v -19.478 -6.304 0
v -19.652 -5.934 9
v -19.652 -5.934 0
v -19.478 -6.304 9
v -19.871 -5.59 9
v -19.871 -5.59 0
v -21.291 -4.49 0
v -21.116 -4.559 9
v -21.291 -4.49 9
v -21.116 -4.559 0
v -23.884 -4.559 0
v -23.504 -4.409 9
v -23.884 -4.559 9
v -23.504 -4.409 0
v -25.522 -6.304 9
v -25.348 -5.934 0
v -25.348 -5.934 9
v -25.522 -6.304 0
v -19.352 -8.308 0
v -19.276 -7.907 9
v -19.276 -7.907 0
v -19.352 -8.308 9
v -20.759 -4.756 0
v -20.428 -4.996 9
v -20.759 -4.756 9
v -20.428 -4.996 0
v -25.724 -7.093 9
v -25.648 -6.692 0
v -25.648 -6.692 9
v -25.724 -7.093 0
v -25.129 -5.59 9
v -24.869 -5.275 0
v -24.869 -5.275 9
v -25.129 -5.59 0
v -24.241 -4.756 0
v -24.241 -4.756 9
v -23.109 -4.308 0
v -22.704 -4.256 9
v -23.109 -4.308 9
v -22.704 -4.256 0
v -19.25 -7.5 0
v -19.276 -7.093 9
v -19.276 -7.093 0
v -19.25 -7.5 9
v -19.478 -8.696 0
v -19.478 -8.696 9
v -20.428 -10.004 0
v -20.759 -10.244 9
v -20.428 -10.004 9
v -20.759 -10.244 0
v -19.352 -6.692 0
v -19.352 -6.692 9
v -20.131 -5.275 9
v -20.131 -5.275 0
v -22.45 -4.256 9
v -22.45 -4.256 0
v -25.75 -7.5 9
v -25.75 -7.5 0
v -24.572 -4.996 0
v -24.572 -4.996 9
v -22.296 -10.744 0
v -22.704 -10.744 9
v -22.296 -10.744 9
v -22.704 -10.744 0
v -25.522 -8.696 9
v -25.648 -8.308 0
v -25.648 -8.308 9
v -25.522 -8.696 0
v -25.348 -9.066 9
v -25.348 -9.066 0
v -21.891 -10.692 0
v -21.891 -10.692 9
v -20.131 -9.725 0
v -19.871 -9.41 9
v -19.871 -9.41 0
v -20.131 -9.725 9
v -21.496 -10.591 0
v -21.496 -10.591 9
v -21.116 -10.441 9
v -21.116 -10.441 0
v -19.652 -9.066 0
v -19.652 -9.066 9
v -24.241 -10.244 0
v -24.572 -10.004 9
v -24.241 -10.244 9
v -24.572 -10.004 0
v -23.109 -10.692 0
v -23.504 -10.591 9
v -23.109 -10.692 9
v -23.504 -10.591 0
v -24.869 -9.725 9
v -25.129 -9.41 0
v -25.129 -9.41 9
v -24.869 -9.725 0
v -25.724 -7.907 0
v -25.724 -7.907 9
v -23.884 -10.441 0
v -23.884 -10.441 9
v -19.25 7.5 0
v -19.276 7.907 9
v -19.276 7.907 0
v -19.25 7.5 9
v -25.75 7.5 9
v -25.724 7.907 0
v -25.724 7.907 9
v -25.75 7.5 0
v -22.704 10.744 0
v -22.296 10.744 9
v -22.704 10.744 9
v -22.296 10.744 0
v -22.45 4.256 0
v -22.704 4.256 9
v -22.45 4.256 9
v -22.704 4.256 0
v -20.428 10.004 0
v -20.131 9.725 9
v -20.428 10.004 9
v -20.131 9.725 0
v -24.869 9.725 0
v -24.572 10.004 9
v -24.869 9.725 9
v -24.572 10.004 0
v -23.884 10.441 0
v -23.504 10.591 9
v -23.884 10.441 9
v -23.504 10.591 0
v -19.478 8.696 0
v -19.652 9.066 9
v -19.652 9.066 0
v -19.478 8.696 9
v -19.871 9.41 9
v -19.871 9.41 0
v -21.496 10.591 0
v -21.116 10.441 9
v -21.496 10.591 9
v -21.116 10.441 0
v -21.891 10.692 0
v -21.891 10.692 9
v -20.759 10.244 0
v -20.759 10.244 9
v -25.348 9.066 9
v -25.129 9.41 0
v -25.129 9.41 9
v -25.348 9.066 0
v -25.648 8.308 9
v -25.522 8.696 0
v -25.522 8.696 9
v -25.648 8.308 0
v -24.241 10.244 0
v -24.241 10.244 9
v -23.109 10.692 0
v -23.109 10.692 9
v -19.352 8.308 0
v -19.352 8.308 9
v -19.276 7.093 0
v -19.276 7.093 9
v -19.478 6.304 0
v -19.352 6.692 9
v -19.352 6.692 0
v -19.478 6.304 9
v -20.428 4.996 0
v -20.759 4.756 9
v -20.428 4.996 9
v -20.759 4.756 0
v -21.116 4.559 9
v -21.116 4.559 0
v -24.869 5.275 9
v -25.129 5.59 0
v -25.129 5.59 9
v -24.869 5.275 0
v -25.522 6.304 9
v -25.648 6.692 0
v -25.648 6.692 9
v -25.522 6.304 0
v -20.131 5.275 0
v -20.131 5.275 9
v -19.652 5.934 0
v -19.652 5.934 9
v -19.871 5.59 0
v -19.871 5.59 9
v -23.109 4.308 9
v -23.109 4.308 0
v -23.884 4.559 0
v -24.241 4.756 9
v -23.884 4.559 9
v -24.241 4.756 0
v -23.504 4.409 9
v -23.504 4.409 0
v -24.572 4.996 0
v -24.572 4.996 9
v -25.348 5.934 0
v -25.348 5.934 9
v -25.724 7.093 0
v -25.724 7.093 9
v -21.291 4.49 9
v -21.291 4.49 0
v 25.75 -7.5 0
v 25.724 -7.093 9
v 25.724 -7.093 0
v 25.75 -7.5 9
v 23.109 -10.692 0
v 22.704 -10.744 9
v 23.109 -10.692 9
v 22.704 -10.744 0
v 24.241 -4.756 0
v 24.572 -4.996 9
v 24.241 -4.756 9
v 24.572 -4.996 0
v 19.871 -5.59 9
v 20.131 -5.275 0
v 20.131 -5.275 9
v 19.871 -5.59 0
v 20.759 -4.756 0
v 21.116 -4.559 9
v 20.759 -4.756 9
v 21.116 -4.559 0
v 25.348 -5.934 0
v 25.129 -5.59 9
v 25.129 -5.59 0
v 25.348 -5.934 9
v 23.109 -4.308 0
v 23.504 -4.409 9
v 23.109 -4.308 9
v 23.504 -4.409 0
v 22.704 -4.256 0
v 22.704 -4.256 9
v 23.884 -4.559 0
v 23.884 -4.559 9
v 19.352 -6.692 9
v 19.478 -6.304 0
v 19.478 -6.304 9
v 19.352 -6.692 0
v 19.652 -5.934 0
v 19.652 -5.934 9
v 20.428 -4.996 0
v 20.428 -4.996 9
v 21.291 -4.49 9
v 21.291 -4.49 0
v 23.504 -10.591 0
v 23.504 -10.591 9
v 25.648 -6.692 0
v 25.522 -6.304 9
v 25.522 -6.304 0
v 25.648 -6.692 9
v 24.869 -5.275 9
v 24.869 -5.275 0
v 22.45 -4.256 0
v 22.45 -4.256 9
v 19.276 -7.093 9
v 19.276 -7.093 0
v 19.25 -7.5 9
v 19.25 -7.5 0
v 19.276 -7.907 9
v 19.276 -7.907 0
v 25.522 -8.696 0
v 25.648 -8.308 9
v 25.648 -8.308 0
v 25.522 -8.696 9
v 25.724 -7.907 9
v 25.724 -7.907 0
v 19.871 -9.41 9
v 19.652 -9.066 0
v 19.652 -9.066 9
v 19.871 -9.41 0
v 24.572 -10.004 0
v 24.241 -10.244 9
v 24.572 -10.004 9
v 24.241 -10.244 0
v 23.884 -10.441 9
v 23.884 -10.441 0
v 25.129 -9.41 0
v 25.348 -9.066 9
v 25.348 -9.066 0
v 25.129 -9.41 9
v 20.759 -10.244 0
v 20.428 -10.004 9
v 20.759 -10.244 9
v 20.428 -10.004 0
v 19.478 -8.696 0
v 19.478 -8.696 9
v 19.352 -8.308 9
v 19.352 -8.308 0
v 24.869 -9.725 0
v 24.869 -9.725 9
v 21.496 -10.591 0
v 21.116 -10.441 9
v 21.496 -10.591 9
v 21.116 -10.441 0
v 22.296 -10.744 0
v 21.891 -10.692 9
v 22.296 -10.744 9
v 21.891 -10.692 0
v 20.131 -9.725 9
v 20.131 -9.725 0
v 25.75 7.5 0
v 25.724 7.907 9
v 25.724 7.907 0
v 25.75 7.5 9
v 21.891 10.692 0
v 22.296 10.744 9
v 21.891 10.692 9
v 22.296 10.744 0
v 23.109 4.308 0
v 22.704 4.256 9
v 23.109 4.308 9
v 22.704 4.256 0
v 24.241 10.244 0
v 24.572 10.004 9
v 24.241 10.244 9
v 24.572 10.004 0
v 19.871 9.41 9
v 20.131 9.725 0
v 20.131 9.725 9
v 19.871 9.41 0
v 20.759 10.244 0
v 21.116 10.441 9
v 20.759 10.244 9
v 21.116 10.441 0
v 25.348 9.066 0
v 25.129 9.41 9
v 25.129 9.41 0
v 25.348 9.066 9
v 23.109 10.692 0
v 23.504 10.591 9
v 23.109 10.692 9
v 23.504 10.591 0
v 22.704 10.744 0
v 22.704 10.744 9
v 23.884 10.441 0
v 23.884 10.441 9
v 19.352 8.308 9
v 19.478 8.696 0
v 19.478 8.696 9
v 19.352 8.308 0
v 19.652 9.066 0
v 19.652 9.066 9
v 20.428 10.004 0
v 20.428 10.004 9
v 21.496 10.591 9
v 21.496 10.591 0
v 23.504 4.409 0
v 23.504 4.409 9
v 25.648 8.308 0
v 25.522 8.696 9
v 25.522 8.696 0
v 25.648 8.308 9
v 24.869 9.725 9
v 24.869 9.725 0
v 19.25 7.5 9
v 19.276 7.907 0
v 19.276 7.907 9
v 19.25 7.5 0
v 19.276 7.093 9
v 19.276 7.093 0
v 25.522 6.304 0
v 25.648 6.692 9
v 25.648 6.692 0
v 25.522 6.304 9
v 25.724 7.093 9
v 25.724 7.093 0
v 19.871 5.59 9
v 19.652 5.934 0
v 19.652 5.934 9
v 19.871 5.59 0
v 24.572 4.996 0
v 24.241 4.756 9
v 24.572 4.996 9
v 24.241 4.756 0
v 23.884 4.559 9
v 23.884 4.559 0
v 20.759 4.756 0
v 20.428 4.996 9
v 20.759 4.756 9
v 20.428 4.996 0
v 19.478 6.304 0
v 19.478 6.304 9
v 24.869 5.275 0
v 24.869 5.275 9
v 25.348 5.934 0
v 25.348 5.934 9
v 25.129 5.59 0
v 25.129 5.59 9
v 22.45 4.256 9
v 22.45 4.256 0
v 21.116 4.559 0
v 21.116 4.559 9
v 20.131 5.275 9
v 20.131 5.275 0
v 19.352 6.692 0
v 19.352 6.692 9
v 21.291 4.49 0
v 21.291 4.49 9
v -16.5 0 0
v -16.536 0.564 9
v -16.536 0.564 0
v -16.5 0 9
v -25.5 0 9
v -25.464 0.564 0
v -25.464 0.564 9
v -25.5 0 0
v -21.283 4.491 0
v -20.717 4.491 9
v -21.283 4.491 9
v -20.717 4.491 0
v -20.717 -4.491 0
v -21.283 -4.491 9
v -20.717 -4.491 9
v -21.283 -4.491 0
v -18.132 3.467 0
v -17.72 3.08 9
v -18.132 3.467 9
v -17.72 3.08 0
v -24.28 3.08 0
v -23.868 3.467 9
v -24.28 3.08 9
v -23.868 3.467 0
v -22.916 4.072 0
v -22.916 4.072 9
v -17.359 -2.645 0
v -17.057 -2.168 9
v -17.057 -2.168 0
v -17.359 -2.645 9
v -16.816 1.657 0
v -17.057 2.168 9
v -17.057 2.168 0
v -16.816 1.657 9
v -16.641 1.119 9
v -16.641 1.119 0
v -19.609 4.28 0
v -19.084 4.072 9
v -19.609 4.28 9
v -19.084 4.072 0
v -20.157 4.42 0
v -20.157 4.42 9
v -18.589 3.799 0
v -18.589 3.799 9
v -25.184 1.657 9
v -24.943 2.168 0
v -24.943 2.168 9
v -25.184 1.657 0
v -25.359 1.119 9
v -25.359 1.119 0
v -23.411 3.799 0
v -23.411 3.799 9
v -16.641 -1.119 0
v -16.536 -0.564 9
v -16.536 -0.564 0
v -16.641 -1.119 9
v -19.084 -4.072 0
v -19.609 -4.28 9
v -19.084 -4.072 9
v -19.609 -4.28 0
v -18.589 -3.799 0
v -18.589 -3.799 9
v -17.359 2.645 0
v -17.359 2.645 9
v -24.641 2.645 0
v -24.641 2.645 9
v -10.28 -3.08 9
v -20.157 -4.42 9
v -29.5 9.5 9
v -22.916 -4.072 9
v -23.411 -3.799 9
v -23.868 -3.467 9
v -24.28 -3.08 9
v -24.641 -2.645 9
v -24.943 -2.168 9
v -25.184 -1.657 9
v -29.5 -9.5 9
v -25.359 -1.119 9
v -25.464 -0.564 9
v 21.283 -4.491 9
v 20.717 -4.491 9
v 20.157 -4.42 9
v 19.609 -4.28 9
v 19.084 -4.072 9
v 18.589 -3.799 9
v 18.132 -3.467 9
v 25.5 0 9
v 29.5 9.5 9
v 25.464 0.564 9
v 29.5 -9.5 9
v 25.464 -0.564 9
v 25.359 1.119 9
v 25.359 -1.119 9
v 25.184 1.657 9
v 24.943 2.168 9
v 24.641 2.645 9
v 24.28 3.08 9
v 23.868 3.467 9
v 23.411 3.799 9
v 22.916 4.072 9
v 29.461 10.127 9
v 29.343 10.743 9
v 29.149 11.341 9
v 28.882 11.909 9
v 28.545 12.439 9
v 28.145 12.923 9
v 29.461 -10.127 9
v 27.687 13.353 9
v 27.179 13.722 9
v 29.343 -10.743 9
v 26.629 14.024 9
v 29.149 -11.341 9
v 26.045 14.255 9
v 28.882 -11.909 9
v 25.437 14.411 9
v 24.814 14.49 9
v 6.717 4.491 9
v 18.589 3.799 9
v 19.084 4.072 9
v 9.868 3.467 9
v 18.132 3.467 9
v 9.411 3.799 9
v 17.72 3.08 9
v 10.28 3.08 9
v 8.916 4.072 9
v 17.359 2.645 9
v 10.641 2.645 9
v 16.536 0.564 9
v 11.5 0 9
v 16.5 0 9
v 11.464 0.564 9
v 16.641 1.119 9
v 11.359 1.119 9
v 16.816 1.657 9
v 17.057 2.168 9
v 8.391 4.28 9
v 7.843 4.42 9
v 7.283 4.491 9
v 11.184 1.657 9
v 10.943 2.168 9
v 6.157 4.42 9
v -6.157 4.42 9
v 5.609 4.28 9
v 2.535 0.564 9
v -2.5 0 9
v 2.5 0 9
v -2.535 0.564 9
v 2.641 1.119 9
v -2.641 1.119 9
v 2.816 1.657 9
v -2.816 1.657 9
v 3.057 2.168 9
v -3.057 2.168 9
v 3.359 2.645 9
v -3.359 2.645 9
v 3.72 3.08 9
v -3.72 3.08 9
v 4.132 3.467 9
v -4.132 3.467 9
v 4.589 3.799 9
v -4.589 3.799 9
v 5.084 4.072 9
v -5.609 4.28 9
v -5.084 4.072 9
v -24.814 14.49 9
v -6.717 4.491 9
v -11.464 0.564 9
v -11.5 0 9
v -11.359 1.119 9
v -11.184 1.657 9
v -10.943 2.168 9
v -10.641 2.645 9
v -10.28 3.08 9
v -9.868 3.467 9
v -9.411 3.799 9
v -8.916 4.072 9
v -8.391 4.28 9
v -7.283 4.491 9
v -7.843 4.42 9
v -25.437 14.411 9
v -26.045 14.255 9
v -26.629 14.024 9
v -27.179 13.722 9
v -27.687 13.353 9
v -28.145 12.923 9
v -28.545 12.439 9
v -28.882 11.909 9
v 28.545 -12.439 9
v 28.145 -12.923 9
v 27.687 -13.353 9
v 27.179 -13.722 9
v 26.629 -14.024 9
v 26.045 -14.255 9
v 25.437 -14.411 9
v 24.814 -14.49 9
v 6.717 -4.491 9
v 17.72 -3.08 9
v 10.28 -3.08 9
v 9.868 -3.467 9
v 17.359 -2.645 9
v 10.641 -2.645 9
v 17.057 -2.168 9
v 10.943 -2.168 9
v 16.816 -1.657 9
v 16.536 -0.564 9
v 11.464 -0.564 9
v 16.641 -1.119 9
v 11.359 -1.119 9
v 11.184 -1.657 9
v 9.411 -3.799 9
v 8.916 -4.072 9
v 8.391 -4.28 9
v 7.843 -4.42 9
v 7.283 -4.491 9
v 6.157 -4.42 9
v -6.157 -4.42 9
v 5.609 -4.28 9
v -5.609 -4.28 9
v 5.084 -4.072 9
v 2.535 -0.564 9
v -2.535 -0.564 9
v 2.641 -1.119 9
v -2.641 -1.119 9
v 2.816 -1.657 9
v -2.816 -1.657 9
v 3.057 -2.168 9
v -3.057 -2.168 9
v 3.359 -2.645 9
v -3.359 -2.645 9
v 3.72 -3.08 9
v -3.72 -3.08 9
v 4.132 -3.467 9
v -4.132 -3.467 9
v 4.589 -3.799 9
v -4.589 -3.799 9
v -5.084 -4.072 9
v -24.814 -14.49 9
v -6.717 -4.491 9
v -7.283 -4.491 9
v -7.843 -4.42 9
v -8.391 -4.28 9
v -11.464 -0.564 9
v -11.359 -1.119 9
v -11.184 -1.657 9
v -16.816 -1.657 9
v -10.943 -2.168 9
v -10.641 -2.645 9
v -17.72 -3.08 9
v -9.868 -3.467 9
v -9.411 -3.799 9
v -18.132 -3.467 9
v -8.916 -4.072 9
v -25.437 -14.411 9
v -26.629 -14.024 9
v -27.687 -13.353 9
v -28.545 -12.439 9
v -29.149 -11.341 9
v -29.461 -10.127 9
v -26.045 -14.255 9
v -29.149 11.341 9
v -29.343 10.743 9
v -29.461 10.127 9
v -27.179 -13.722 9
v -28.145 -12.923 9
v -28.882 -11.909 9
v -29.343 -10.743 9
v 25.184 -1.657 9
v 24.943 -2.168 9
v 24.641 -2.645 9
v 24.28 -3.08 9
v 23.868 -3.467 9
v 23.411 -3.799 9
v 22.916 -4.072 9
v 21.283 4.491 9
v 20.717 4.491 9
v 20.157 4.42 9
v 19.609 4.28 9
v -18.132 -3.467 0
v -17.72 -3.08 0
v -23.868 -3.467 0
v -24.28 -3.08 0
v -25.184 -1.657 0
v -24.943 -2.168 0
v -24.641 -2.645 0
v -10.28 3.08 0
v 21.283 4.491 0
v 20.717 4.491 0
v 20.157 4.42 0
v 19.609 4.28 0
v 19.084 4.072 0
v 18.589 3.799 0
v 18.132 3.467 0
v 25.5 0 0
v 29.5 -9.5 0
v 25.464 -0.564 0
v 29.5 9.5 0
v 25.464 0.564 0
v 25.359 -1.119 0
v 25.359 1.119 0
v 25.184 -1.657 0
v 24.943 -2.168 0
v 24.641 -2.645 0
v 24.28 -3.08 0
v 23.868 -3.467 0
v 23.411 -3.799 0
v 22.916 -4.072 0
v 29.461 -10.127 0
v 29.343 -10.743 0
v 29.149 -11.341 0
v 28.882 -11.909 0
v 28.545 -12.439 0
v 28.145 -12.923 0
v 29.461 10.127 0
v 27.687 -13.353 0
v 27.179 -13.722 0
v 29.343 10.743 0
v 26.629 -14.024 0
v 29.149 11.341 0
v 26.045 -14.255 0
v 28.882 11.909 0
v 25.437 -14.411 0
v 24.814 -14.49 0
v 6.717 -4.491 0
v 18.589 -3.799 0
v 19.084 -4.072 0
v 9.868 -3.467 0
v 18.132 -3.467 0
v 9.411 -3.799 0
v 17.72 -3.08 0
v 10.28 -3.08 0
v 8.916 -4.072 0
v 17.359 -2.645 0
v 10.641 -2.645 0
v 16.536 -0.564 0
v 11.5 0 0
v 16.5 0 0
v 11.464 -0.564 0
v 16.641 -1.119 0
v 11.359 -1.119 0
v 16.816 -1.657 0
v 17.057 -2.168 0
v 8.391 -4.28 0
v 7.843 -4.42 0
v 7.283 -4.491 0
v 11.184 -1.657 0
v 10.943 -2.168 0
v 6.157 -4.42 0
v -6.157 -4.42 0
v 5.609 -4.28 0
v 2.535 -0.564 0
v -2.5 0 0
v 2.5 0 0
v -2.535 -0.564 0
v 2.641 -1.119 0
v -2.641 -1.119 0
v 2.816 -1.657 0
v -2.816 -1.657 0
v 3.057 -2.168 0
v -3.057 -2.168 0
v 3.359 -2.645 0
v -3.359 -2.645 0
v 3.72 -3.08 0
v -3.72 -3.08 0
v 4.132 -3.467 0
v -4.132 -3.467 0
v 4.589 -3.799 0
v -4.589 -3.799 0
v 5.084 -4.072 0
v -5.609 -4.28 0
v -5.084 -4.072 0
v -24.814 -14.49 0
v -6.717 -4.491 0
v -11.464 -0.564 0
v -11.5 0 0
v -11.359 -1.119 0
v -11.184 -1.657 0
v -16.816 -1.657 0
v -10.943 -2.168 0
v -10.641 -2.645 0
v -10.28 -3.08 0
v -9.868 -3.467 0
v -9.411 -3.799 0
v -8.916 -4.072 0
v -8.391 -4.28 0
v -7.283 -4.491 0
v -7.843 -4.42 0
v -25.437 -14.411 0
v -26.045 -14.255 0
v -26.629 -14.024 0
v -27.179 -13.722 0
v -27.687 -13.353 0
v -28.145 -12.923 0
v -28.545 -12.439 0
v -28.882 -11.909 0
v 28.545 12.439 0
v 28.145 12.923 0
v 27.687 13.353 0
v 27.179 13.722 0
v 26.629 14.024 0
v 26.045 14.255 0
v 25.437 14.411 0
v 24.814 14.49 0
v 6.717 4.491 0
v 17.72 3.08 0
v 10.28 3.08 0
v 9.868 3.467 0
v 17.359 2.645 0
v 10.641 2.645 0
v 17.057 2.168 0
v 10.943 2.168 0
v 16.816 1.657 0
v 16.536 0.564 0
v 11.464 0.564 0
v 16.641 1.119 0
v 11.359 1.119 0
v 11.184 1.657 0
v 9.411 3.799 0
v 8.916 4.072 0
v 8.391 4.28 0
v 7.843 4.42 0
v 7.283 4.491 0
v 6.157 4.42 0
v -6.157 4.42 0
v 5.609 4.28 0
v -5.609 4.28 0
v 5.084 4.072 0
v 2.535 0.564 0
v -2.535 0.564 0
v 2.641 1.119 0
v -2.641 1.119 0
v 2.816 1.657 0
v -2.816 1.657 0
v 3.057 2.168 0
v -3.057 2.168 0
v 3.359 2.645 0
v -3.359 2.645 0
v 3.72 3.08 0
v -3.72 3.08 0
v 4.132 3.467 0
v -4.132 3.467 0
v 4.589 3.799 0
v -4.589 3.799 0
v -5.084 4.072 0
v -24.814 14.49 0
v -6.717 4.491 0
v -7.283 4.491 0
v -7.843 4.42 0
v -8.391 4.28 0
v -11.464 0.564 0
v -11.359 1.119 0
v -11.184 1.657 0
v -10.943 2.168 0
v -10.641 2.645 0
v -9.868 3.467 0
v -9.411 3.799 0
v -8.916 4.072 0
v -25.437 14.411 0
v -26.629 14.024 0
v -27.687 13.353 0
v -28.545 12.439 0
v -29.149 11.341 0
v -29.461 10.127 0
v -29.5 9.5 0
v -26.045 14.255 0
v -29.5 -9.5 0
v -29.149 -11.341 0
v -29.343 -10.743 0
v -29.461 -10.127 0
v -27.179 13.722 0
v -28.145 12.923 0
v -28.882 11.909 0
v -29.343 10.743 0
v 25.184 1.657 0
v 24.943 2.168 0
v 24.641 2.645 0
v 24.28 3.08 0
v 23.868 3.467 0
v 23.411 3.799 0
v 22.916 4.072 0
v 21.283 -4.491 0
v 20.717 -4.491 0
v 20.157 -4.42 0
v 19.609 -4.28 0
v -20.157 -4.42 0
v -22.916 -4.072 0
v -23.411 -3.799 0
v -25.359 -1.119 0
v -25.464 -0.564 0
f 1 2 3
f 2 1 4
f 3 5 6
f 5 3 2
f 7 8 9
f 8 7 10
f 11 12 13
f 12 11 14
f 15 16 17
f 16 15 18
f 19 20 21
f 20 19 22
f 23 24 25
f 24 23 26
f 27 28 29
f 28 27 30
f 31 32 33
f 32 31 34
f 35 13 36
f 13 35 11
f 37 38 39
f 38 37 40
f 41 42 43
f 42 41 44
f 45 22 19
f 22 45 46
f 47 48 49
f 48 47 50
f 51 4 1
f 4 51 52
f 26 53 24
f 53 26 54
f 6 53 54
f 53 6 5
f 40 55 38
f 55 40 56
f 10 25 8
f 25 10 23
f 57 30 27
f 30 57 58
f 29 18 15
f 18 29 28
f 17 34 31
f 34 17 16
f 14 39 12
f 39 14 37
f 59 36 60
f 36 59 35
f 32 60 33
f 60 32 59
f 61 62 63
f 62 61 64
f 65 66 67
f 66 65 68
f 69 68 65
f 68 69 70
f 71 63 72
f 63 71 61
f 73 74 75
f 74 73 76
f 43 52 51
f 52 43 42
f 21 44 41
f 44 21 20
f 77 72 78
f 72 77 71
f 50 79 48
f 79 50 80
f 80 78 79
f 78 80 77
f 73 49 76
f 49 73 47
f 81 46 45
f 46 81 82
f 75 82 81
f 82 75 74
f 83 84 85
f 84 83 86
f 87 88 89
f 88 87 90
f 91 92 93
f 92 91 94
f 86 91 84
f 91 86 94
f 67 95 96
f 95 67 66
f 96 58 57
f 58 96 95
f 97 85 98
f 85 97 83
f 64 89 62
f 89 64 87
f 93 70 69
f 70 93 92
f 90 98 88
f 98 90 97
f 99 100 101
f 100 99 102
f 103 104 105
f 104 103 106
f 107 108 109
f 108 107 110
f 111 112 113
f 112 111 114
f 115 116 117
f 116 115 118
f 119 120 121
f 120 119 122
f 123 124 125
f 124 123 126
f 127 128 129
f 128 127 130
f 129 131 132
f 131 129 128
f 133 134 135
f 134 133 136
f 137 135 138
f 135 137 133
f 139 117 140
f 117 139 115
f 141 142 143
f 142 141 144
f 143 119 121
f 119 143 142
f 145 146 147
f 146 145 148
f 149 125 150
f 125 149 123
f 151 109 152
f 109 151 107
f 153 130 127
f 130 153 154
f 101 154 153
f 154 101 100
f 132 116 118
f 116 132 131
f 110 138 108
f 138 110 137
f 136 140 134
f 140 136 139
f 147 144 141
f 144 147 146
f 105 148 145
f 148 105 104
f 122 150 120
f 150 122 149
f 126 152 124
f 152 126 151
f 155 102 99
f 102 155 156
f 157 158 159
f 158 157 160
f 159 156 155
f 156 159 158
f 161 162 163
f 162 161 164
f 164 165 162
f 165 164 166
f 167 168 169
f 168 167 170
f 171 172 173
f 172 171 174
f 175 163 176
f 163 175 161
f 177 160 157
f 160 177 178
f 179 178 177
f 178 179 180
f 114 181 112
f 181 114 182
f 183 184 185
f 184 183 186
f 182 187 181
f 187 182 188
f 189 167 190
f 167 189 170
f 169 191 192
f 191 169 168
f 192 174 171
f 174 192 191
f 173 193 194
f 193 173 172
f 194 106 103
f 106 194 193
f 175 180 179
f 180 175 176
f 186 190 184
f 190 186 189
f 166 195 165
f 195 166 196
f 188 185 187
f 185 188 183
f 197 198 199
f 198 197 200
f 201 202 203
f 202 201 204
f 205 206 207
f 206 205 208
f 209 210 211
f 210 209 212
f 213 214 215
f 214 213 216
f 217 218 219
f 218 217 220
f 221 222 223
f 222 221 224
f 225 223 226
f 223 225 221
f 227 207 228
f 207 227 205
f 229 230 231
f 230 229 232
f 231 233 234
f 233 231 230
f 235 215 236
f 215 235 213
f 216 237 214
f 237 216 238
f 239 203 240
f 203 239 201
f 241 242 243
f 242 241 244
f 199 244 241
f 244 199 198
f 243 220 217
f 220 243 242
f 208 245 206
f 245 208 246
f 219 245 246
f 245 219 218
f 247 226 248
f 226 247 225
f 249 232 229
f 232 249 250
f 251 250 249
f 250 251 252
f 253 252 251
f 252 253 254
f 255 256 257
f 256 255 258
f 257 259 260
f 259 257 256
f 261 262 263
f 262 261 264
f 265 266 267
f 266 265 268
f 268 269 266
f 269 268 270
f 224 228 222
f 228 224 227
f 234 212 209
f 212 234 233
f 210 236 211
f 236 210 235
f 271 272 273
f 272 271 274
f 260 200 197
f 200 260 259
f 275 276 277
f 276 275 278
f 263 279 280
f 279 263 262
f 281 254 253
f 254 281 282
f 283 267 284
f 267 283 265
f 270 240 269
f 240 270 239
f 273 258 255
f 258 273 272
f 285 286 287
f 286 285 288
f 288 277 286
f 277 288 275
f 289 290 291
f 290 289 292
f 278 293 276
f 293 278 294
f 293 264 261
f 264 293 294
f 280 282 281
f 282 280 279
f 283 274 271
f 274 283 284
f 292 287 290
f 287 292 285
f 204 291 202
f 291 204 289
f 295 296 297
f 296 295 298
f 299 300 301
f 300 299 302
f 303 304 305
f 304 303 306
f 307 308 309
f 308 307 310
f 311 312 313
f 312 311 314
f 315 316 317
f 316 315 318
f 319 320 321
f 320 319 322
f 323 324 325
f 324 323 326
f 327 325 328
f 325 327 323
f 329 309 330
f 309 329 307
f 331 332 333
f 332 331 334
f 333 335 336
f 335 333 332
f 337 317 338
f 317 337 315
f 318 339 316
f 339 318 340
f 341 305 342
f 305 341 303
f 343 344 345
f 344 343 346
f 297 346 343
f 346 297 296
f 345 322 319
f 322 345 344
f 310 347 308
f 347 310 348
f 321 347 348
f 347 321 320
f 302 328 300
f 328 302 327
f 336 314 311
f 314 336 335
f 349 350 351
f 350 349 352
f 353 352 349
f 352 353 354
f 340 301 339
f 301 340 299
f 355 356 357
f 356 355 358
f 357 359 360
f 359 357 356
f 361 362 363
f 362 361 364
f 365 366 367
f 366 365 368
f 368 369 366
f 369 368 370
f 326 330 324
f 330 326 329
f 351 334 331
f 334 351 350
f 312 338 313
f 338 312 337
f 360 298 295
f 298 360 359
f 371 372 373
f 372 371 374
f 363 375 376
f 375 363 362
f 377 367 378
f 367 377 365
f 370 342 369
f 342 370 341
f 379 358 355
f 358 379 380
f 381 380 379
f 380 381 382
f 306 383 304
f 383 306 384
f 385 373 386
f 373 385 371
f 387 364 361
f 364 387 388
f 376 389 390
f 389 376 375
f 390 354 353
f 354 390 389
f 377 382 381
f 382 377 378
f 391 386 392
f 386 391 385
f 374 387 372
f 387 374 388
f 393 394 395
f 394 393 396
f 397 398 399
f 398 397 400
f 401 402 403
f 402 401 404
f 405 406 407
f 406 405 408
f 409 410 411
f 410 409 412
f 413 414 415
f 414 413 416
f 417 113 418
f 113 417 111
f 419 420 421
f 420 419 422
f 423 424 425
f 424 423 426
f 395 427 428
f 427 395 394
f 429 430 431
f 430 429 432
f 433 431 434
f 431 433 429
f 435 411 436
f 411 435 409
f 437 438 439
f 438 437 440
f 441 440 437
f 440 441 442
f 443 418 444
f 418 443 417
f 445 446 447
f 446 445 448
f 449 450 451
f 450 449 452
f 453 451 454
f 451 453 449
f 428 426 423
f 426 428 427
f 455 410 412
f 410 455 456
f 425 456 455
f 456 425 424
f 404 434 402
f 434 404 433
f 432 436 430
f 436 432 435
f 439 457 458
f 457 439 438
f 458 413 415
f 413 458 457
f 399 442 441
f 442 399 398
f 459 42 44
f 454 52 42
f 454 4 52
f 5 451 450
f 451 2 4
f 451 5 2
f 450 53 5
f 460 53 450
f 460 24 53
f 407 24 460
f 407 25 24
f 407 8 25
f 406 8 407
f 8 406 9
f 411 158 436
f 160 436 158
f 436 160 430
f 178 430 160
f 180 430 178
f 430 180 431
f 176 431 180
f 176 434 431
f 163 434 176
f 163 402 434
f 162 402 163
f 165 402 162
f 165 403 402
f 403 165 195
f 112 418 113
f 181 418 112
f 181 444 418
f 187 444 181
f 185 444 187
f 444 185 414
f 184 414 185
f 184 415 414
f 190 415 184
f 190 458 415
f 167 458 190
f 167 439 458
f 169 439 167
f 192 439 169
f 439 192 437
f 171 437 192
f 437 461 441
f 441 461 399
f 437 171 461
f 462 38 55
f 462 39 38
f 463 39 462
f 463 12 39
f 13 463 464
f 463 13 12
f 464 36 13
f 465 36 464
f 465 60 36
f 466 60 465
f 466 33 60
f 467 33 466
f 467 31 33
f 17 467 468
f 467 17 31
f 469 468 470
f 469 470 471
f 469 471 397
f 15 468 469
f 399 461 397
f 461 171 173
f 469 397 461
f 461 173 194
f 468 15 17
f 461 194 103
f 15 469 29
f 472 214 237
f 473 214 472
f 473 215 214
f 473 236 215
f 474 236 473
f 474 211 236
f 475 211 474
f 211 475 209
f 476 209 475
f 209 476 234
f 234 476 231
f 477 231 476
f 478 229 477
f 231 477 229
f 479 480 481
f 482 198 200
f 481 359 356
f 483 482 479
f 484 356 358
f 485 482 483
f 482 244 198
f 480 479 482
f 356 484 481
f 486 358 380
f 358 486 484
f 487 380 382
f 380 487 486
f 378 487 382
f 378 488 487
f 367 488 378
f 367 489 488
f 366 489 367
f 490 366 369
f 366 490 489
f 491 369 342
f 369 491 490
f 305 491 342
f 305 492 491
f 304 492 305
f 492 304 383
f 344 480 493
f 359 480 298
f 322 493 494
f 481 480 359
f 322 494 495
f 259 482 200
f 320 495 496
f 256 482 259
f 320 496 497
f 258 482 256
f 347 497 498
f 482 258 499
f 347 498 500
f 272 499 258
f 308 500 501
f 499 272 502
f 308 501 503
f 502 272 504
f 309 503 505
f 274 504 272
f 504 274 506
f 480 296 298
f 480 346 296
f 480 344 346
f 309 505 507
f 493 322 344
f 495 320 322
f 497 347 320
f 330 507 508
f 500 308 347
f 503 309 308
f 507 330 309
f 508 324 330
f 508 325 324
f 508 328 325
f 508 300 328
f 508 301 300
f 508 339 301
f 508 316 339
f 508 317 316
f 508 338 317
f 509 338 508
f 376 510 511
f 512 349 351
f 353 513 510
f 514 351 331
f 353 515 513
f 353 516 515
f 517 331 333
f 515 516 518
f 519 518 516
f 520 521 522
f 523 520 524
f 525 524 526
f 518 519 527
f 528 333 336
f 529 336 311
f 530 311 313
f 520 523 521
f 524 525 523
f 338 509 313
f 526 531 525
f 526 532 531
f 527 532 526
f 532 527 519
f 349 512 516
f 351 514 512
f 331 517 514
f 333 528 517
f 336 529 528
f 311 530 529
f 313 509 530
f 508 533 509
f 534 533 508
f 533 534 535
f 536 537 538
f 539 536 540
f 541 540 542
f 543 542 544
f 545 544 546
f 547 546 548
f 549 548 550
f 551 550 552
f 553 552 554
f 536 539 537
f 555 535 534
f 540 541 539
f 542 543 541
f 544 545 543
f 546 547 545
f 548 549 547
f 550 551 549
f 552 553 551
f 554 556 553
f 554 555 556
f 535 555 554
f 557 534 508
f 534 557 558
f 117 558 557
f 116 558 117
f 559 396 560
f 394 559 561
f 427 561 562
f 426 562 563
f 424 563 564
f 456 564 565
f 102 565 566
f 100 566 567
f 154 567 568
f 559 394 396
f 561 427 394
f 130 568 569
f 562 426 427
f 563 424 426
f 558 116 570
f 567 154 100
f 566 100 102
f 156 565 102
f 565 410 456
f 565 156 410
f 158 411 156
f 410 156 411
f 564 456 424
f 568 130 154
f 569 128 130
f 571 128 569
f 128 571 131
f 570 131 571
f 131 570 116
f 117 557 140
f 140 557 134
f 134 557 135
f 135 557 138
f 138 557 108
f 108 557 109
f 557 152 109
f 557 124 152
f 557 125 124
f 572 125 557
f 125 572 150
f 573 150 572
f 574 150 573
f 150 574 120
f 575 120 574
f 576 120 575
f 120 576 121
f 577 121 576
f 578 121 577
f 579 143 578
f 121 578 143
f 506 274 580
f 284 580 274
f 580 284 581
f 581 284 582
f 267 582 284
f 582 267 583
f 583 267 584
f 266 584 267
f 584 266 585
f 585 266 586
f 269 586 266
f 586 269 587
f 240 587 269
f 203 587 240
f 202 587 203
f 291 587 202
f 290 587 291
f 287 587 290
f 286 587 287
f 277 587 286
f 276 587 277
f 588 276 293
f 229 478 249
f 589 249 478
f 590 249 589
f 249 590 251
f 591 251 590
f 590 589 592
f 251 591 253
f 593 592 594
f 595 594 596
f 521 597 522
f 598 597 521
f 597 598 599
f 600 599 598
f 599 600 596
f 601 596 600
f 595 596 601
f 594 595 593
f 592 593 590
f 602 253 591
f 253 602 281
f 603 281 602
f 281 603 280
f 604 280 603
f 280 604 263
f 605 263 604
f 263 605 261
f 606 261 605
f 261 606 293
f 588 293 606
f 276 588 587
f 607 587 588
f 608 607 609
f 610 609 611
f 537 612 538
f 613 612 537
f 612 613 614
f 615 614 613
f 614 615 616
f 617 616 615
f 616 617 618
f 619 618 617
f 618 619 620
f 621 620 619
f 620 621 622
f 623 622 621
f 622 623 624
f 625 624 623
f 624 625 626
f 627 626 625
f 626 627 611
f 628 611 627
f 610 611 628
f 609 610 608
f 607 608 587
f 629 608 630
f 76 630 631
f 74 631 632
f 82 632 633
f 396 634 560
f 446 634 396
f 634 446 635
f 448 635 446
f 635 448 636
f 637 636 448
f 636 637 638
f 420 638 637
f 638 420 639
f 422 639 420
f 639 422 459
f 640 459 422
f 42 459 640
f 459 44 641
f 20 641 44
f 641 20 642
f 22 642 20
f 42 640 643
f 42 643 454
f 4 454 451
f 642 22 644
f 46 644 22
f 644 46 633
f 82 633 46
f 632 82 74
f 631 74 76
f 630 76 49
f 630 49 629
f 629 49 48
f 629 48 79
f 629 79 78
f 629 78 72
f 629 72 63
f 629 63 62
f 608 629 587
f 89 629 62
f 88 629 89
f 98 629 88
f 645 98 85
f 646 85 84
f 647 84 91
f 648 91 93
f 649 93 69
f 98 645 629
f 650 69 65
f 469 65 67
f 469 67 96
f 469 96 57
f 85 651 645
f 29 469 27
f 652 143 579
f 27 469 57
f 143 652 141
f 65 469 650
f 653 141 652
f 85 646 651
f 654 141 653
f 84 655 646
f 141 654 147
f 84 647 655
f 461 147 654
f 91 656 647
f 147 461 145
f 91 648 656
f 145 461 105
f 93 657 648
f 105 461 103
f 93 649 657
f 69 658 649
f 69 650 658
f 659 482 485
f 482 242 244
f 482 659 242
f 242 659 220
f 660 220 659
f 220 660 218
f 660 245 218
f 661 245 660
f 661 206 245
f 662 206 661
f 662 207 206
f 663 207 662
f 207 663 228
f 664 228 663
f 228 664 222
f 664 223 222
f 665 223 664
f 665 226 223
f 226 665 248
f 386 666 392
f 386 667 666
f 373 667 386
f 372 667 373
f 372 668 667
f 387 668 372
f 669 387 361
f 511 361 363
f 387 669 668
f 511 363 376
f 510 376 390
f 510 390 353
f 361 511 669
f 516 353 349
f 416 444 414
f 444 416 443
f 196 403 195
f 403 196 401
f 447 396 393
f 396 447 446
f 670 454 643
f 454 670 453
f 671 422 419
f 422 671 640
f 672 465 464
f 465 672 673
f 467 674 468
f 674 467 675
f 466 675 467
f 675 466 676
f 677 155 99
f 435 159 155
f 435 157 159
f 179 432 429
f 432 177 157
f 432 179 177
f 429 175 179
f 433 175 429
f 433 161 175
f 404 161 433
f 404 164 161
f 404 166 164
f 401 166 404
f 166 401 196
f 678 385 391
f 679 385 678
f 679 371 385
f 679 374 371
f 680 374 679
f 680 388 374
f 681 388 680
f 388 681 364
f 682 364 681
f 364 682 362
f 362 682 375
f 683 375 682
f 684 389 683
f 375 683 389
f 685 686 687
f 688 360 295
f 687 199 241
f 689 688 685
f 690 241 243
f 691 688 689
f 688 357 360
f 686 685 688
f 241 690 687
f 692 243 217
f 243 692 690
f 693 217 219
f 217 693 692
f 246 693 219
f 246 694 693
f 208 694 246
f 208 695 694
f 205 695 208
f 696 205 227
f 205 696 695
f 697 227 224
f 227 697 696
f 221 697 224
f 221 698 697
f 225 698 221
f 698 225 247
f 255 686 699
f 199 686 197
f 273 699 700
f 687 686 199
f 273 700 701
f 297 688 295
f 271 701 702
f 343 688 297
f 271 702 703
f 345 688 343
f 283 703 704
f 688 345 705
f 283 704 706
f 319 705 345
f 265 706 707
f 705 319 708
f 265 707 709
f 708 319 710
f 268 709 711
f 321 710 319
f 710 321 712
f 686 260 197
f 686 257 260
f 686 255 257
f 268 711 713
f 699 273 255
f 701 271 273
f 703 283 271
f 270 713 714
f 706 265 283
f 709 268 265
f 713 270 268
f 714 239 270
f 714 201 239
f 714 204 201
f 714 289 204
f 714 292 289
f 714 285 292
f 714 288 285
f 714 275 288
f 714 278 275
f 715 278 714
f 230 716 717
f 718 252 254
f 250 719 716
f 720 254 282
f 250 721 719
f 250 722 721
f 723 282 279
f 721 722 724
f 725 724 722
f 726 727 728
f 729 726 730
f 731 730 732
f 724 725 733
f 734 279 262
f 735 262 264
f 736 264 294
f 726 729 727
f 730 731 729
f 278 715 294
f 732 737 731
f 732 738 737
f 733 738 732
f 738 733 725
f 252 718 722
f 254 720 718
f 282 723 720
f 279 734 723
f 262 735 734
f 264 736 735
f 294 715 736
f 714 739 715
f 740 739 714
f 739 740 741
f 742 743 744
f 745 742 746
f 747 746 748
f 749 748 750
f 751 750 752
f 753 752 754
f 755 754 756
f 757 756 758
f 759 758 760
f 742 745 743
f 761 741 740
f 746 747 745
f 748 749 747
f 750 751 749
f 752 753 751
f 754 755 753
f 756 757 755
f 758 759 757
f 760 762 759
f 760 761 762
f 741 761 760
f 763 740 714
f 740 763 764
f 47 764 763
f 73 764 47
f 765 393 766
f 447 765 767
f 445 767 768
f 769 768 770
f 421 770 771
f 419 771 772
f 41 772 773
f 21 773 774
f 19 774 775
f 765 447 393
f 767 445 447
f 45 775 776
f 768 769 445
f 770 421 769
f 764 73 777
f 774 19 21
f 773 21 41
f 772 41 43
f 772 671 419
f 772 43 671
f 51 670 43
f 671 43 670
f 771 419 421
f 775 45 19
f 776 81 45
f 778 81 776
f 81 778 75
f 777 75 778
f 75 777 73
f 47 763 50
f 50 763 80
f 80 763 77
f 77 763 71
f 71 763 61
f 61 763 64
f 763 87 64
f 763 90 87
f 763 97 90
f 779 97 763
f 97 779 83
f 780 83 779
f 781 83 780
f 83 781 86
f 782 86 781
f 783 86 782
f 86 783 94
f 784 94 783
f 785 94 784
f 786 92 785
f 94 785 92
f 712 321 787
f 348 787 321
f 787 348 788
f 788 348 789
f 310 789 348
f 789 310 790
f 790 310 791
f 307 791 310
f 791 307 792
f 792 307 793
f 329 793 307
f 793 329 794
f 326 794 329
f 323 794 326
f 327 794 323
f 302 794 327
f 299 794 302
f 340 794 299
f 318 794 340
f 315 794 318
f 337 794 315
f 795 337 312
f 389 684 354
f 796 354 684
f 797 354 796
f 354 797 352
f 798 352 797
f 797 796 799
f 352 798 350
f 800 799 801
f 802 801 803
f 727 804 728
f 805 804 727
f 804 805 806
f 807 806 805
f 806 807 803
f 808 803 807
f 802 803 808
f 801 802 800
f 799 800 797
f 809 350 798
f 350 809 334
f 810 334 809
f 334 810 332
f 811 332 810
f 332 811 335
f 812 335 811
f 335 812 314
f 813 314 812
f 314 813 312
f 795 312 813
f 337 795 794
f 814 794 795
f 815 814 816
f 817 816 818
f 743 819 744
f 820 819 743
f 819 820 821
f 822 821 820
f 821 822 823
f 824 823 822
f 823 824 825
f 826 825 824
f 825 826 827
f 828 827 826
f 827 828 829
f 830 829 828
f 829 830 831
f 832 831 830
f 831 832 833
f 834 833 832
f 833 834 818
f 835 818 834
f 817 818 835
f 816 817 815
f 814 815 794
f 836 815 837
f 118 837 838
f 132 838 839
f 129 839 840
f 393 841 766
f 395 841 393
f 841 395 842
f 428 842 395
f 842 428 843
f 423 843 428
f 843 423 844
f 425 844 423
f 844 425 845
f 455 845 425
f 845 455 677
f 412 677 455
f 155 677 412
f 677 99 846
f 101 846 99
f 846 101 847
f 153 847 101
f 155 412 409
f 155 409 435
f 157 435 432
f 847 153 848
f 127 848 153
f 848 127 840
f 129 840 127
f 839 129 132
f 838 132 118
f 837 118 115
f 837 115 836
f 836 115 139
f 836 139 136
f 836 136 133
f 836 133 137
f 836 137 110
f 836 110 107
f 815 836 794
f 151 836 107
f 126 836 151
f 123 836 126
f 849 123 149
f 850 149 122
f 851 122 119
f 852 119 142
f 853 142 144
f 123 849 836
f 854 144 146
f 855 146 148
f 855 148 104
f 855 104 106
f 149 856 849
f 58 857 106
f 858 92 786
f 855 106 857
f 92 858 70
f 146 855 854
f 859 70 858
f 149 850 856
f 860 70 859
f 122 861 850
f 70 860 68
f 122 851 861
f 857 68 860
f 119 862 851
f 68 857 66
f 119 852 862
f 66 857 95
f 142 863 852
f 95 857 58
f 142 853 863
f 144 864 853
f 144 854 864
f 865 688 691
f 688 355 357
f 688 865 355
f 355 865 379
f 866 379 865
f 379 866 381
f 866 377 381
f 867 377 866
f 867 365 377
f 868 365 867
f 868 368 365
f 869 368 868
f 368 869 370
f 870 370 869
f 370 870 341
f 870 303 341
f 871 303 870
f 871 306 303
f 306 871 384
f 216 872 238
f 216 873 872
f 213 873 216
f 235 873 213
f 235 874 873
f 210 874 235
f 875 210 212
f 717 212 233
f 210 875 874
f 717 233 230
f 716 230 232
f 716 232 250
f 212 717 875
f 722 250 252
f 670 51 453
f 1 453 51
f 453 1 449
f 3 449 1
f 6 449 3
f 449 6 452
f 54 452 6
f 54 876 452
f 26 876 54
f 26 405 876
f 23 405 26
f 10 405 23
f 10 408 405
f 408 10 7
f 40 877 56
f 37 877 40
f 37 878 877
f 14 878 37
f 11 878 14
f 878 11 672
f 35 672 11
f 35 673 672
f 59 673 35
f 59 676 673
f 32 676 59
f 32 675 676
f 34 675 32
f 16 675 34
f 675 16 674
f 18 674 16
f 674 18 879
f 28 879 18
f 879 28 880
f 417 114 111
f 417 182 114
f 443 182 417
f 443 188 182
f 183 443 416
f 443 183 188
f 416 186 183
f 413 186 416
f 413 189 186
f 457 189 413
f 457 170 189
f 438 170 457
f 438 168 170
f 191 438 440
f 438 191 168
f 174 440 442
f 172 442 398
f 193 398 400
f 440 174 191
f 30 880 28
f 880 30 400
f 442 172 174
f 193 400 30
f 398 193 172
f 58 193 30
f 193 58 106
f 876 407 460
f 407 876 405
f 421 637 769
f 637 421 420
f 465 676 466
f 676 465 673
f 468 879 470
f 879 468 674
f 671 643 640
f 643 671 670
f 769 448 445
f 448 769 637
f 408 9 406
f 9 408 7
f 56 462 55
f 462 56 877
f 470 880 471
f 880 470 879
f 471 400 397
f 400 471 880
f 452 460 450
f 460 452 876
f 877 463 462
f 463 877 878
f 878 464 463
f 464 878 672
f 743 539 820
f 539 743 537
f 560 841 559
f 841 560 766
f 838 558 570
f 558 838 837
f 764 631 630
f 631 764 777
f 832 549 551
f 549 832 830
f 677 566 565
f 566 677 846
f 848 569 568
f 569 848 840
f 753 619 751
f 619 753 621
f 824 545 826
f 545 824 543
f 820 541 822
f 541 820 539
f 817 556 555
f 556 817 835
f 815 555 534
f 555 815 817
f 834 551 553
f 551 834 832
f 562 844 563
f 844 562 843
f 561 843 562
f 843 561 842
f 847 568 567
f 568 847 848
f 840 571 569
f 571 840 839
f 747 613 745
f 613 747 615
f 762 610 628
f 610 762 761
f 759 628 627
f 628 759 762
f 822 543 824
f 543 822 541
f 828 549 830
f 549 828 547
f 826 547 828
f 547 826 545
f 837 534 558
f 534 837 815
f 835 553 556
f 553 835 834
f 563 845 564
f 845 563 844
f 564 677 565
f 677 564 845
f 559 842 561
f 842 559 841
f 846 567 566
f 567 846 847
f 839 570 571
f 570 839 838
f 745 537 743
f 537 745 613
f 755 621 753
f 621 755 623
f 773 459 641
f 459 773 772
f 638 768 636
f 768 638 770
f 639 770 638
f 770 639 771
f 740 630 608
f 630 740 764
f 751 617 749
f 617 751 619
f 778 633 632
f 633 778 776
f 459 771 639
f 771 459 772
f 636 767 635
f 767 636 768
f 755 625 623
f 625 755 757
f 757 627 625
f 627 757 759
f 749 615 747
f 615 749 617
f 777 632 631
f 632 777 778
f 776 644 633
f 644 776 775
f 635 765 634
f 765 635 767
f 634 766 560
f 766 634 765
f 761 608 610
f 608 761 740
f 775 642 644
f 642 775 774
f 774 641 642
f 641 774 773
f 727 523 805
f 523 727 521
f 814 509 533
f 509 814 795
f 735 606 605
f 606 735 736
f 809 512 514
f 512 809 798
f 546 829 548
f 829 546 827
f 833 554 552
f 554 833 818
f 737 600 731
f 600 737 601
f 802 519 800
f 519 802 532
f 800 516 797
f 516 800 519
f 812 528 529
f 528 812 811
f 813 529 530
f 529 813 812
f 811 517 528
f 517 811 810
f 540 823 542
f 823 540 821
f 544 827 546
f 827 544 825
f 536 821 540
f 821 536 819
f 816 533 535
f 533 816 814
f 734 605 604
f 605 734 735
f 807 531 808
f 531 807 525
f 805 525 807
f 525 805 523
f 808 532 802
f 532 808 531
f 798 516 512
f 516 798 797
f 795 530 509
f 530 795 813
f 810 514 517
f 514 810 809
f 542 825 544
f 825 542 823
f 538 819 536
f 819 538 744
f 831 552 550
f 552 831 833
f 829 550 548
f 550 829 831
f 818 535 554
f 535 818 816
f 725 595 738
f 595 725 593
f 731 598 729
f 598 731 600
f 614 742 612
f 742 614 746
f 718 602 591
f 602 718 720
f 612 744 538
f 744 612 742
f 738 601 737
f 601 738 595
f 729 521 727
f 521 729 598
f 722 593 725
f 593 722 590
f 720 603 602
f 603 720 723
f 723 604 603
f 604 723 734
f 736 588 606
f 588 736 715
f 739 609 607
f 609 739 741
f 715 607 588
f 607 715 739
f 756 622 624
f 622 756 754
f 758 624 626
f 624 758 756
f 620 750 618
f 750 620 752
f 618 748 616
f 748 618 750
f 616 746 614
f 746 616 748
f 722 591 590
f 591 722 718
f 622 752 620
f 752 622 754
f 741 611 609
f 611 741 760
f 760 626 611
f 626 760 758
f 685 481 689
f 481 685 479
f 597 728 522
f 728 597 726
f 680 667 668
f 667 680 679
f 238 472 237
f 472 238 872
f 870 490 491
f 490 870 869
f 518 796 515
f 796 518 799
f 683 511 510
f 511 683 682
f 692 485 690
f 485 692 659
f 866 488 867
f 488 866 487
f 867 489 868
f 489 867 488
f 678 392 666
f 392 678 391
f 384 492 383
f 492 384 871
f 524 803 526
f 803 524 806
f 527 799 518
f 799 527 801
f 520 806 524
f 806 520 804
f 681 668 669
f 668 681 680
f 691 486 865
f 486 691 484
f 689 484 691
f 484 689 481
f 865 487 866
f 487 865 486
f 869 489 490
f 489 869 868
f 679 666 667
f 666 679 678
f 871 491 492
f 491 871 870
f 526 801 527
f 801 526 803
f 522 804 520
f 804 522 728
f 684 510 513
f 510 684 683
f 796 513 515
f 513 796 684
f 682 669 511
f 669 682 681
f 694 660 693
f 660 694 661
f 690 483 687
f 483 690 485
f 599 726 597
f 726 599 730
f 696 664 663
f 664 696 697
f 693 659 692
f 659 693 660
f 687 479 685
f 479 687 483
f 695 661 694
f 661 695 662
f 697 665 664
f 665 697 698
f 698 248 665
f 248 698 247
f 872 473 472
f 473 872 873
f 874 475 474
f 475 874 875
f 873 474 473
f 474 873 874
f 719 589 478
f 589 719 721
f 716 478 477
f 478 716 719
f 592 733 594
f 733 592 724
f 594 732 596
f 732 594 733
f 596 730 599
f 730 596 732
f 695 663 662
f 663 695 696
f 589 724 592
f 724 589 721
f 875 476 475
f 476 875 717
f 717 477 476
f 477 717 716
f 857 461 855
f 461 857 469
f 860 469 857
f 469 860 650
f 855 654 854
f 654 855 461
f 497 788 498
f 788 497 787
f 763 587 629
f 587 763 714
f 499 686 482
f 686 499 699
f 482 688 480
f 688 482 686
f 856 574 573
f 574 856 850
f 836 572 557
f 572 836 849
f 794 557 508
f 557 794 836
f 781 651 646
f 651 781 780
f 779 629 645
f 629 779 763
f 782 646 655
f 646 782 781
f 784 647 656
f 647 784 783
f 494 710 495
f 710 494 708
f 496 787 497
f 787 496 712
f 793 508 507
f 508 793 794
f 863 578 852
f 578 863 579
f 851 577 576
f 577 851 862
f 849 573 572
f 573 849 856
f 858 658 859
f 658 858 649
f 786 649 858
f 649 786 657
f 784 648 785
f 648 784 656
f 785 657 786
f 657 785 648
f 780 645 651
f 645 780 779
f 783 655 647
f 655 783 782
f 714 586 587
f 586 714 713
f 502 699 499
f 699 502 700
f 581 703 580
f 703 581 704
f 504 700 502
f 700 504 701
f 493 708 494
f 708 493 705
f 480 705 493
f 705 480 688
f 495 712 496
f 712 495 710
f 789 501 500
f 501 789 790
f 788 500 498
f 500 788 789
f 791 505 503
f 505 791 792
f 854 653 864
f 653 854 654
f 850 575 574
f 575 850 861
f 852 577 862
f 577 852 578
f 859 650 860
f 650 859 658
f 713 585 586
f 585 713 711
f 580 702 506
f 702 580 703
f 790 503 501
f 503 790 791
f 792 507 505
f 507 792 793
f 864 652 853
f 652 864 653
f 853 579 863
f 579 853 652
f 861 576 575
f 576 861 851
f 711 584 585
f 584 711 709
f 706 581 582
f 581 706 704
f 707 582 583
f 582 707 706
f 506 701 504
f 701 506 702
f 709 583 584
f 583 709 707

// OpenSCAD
$fn = 50;


difference() {
	union() {
		hull() {
			translate(v = [-24.5000000000, 9.5000000000, 0]) {
				cylinder(h = 9, r = 5);
			}
			translate(v = [24.5000000000, 9.5000000000, 0]) {
				cylinder(h = 9, r = 5);
			}
			translate(v = [-24.5000000000, -9.5000000000, 0]) {
				cylinder(h = 9, r = 5);
			}
			translate(v = [24.5000000000, -9.5000000000, 0]) {
				cylinder(h = 9, r = 5);
			}
		}
	}
	union() {
		#translate(v = [-22.5000000000, -7.5000000000, -100.0000000000]) {
			cylinder(h = 200, r = 3.2500000000);
		}
		#translate(v = [-22.5000000000, 7.5000000000, -100.0000000000]) {
			cylinder(h = 200, r = 3.2500000000);
		}
		#translate(v = [22.5000000000, -7.5000000000, -100.0000000000]) {
			cylinder(h = 200, r = 3.2500000000);
		}
		#translate(v = [22.5000000000, 7.5000000000, -100.0000000000]) {
			cylinder(h = 200, r = 3.2500000000);
		}
		#translate(v = [-21.0000000000, 0, 0]) {
			cylinder(h = 9, r = 4.5000000000);
		}
		#translate(v = [-7.0000000000, 0, 0]) {
			cylinder(h = 9, r = 4.5000000000);
		}
		#translate(v = [7.0000000000, 0, 0]) {
			cylinder(h = 9, r = 4.5000000000);
		}
		#translate(v = [21.0000000000, 0, 0]) {
			cylinder(h = 9, r = 4.5000000000);
		}
	}
}
